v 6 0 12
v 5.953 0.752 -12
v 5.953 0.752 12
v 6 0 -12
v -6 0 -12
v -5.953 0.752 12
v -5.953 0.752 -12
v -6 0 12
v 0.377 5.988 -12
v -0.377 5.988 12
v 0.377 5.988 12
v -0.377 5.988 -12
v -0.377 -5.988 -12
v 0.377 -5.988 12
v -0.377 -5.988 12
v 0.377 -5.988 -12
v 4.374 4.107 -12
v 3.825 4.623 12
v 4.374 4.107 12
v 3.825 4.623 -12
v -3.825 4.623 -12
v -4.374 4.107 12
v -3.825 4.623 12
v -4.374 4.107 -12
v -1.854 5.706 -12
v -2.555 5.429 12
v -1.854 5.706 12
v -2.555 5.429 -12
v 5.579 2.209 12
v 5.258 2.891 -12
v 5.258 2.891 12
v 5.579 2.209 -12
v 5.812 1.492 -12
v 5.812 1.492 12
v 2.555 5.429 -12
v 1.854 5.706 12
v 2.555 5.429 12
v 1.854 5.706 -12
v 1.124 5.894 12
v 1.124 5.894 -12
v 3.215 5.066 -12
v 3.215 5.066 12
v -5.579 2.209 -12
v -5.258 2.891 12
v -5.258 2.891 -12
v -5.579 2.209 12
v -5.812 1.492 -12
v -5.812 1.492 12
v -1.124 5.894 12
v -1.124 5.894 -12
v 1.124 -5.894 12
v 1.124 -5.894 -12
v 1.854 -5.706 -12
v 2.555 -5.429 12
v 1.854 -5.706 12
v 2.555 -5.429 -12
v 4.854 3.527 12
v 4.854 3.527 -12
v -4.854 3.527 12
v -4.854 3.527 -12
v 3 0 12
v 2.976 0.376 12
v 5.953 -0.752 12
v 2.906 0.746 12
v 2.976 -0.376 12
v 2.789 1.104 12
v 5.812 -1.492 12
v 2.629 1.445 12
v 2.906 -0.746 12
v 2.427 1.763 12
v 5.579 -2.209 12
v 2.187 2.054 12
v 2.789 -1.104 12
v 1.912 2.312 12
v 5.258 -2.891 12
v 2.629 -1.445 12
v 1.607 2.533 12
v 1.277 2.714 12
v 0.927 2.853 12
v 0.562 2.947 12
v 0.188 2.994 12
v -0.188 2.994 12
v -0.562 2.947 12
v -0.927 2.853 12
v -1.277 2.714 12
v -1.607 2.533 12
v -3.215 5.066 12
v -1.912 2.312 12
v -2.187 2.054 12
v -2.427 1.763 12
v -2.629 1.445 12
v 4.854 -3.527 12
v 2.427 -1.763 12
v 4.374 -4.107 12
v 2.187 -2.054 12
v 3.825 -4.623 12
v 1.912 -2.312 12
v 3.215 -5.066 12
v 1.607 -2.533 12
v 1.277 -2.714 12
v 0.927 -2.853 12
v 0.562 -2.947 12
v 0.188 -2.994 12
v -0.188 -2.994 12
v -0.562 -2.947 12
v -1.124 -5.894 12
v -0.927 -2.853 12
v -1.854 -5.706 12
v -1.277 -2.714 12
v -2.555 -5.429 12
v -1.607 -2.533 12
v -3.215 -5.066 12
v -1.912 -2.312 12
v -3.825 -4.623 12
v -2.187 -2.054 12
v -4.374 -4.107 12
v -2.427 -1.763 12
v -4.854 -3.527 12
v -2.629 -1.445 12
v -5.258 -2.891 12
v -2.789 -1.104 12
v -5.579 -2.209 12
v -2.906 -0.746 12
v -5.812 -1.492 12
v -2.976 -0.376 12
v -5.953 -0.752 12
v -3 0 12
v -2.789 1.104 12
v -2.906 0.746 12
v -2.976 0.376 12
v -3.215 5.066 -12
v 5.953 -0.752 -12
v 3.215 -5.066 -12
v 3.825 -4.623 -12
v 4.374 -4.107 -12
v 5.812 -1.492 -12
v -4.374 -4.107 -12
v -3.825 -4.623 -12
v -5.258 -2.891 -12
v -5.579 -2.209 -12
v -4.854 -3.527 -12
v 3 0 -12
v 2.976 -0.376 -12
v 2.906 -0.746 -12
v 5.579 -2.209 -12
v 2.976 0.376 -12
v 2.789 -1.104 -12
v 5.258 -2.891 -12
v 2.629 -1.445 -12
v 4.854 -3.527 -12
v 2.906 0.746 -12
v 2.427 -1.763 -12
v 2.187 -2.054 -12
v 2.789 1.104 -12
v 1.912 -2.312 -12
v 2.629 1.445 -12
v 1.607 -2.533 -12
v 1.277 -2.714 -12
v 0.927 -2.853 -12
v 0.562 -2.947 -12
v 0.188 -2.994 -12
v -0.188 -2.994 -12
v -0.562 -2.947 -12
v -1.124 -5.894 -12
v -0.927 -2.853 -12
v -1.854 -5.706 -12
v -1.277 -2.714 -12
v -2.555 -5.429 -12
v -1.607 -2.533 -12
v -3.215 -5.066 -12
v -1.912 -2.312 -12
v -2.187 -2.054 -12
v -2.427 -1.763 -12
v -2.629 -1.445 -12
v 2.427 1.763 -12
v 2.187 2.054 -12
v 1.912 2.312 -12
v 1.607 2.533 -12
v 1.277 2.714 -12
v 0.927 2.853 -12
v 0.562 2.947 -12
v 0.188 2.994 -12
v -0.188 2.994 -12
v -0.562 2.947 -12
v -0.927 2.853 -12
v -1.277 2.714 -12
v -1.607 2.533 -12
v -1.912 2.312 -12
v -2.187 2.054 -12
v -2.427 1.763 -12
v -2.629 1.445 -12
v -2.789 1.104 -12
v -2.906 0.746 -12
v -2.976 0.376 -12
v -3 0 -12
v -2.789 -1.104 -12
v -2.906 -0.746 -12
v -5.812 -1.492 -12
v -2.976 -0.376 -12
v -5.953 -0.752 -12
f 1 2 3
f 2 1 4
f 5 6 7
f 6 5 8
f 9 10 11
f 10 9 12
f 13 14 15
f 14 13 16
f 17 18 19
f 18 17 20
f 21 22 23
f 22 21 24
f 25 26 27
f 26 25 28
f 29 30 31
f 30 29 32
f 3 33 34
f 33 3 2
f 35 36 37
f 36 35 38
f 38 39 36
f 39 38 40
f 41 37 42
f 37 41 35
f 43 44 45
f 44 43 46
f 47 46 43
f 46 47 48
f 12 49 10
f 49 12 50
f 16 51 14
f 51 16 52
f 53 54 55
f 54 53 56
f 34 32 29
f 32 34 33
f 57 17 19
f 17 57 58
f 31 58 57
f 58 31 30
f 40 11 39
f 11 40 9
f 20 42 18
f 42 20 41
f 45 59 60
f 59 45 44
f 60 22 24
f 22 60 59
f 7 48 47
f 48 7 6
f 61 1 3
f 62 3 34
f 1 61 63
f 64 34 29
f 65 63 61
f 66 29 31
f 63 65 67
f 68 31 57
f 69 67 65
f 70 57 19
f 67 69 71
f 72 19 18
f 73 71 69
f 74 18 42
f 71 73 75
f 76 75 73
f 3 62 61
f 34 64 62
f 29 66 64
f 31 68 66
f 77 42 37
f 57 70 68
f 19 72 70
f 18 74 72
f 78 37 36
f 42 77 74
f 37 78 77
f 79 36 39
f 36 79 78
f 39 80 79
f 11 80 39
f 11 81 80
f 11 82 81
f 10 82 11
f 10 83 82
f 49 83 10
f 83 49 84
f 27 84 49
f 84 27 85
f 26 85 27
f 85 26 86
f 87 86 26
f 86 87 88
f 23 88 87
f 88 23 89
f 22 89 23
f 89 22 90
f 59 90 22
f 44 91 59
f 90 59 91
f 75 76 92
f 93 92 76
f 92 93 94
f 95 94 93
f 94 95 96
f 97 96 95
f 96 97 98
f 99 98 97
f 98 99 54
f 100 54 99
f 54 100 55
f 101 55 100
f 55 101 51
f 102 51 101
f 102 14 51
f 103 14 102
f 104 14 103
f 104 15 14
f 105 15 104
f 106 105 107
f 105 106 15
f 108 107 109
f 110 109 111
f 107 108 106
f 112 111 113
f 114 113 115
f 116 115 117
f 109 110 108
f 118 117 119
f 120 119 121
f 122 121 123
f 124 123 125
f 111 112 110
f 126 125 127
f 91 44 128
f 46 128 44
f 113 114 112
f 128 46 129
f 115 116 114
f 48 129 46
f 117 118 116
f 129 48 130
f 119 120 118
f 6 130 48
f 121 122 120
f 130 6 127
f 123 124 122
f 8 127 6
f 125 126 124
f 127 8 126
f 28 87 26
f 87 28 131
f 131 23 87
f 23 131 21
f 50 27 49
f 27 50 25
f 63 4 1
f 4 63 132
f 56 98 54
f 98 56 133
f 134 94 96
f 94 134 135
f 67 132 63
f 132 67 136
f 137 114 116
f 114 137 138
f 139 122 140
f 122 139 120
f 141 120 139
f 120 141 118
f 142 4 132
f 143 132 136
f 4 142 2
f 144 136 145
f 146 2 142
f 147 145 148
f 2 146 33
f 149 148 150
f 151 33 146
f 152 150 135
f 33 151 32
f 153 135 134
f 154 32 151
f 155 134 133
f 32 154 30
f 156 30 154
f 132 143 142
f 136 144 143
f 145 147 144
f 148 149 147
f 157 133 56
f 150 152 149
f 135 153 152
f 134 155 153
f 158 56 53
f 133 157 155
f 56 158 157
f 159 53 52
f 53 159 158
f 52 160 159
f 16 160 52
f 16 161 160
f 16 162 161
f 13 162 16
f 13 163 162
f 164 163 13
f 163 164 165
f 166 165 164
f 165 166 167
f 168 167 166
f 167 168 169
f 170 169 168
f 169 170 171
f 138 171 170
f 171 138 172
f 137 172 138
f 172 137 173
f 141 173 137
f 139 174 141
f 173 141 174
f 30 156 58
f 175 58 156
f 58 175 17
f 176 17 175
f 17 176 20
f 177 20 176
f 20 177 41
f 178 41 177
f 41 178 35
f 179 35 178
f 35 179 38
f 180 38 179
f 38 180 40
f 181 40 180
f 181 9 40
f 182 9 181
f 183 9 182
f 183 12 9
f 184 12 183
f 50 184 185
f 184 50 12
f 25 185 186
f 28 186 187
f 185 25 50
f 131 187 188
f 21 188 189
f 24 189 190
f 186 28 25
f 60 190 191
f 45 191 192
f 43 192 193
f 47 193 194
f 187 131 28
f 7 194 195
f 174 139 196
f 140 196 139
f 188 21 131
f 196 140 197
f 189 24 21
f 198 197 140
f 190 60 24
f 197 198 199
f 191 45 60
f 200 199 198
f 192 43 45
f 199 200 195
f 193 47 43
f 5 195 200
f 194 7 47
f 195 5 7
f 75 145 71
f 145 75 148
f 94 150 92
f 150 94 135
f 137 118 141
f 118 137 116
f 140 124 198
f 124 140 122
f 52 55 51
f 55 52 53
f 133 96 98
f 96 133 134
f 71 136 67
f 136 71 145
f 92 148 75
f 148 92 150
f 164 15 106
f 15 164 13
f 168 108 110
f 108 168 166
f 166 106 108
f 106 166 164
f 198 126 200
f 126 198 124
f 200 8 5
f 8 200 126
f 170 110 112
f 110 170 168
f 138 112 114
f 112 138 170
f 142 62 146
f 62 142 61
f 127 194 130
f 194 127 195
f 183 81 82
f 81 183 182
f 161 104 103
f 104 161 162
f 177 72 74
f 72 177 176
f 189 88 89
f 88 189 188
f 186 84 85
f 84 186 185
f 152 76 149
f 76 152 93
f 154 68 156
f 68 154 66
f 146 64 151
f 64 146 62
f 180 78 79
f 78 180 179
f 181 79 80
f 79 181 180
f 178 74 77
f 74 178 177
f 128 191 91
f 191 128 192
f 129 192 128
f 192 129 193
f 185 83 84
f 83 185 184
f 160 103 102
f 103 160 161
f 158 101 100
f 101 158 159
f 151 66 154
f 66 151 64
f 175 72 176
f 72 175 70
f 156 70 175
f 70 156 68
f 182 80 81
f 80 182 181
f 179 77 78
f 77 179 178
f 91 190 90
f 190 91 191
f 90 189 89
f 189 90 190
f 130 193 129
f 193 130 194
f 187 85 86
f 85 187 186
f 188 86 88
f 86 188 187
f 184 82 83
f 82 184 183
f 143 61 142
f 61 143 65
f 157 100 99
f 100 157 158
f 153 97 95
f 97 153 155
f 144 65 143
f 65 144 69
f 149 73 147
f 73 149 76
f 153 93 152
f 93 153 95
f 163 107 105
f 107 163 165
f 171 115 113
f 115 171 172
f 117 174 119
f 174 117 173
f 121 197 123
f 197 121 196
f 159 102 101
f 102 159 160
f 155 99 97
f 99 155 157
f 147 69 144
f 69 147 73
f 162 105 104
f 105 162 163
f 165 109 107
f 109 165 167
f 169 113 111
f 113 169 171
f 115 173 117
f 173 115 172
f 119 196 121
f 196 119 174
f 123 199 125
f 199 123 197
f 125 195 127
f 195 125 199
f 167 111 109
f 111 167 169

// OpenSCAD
$fn = 50;


difference() {
	union() {
		translate(v = [0, 0, -12.0000000000]) {
			cylinder(h = 24, r = 6.0000000000);
		}
	}
	union() {
		translate(v = [0, 0, -100.0000000000]) {
			cylinder(h = 200, r = 3);
		}
	}
}
